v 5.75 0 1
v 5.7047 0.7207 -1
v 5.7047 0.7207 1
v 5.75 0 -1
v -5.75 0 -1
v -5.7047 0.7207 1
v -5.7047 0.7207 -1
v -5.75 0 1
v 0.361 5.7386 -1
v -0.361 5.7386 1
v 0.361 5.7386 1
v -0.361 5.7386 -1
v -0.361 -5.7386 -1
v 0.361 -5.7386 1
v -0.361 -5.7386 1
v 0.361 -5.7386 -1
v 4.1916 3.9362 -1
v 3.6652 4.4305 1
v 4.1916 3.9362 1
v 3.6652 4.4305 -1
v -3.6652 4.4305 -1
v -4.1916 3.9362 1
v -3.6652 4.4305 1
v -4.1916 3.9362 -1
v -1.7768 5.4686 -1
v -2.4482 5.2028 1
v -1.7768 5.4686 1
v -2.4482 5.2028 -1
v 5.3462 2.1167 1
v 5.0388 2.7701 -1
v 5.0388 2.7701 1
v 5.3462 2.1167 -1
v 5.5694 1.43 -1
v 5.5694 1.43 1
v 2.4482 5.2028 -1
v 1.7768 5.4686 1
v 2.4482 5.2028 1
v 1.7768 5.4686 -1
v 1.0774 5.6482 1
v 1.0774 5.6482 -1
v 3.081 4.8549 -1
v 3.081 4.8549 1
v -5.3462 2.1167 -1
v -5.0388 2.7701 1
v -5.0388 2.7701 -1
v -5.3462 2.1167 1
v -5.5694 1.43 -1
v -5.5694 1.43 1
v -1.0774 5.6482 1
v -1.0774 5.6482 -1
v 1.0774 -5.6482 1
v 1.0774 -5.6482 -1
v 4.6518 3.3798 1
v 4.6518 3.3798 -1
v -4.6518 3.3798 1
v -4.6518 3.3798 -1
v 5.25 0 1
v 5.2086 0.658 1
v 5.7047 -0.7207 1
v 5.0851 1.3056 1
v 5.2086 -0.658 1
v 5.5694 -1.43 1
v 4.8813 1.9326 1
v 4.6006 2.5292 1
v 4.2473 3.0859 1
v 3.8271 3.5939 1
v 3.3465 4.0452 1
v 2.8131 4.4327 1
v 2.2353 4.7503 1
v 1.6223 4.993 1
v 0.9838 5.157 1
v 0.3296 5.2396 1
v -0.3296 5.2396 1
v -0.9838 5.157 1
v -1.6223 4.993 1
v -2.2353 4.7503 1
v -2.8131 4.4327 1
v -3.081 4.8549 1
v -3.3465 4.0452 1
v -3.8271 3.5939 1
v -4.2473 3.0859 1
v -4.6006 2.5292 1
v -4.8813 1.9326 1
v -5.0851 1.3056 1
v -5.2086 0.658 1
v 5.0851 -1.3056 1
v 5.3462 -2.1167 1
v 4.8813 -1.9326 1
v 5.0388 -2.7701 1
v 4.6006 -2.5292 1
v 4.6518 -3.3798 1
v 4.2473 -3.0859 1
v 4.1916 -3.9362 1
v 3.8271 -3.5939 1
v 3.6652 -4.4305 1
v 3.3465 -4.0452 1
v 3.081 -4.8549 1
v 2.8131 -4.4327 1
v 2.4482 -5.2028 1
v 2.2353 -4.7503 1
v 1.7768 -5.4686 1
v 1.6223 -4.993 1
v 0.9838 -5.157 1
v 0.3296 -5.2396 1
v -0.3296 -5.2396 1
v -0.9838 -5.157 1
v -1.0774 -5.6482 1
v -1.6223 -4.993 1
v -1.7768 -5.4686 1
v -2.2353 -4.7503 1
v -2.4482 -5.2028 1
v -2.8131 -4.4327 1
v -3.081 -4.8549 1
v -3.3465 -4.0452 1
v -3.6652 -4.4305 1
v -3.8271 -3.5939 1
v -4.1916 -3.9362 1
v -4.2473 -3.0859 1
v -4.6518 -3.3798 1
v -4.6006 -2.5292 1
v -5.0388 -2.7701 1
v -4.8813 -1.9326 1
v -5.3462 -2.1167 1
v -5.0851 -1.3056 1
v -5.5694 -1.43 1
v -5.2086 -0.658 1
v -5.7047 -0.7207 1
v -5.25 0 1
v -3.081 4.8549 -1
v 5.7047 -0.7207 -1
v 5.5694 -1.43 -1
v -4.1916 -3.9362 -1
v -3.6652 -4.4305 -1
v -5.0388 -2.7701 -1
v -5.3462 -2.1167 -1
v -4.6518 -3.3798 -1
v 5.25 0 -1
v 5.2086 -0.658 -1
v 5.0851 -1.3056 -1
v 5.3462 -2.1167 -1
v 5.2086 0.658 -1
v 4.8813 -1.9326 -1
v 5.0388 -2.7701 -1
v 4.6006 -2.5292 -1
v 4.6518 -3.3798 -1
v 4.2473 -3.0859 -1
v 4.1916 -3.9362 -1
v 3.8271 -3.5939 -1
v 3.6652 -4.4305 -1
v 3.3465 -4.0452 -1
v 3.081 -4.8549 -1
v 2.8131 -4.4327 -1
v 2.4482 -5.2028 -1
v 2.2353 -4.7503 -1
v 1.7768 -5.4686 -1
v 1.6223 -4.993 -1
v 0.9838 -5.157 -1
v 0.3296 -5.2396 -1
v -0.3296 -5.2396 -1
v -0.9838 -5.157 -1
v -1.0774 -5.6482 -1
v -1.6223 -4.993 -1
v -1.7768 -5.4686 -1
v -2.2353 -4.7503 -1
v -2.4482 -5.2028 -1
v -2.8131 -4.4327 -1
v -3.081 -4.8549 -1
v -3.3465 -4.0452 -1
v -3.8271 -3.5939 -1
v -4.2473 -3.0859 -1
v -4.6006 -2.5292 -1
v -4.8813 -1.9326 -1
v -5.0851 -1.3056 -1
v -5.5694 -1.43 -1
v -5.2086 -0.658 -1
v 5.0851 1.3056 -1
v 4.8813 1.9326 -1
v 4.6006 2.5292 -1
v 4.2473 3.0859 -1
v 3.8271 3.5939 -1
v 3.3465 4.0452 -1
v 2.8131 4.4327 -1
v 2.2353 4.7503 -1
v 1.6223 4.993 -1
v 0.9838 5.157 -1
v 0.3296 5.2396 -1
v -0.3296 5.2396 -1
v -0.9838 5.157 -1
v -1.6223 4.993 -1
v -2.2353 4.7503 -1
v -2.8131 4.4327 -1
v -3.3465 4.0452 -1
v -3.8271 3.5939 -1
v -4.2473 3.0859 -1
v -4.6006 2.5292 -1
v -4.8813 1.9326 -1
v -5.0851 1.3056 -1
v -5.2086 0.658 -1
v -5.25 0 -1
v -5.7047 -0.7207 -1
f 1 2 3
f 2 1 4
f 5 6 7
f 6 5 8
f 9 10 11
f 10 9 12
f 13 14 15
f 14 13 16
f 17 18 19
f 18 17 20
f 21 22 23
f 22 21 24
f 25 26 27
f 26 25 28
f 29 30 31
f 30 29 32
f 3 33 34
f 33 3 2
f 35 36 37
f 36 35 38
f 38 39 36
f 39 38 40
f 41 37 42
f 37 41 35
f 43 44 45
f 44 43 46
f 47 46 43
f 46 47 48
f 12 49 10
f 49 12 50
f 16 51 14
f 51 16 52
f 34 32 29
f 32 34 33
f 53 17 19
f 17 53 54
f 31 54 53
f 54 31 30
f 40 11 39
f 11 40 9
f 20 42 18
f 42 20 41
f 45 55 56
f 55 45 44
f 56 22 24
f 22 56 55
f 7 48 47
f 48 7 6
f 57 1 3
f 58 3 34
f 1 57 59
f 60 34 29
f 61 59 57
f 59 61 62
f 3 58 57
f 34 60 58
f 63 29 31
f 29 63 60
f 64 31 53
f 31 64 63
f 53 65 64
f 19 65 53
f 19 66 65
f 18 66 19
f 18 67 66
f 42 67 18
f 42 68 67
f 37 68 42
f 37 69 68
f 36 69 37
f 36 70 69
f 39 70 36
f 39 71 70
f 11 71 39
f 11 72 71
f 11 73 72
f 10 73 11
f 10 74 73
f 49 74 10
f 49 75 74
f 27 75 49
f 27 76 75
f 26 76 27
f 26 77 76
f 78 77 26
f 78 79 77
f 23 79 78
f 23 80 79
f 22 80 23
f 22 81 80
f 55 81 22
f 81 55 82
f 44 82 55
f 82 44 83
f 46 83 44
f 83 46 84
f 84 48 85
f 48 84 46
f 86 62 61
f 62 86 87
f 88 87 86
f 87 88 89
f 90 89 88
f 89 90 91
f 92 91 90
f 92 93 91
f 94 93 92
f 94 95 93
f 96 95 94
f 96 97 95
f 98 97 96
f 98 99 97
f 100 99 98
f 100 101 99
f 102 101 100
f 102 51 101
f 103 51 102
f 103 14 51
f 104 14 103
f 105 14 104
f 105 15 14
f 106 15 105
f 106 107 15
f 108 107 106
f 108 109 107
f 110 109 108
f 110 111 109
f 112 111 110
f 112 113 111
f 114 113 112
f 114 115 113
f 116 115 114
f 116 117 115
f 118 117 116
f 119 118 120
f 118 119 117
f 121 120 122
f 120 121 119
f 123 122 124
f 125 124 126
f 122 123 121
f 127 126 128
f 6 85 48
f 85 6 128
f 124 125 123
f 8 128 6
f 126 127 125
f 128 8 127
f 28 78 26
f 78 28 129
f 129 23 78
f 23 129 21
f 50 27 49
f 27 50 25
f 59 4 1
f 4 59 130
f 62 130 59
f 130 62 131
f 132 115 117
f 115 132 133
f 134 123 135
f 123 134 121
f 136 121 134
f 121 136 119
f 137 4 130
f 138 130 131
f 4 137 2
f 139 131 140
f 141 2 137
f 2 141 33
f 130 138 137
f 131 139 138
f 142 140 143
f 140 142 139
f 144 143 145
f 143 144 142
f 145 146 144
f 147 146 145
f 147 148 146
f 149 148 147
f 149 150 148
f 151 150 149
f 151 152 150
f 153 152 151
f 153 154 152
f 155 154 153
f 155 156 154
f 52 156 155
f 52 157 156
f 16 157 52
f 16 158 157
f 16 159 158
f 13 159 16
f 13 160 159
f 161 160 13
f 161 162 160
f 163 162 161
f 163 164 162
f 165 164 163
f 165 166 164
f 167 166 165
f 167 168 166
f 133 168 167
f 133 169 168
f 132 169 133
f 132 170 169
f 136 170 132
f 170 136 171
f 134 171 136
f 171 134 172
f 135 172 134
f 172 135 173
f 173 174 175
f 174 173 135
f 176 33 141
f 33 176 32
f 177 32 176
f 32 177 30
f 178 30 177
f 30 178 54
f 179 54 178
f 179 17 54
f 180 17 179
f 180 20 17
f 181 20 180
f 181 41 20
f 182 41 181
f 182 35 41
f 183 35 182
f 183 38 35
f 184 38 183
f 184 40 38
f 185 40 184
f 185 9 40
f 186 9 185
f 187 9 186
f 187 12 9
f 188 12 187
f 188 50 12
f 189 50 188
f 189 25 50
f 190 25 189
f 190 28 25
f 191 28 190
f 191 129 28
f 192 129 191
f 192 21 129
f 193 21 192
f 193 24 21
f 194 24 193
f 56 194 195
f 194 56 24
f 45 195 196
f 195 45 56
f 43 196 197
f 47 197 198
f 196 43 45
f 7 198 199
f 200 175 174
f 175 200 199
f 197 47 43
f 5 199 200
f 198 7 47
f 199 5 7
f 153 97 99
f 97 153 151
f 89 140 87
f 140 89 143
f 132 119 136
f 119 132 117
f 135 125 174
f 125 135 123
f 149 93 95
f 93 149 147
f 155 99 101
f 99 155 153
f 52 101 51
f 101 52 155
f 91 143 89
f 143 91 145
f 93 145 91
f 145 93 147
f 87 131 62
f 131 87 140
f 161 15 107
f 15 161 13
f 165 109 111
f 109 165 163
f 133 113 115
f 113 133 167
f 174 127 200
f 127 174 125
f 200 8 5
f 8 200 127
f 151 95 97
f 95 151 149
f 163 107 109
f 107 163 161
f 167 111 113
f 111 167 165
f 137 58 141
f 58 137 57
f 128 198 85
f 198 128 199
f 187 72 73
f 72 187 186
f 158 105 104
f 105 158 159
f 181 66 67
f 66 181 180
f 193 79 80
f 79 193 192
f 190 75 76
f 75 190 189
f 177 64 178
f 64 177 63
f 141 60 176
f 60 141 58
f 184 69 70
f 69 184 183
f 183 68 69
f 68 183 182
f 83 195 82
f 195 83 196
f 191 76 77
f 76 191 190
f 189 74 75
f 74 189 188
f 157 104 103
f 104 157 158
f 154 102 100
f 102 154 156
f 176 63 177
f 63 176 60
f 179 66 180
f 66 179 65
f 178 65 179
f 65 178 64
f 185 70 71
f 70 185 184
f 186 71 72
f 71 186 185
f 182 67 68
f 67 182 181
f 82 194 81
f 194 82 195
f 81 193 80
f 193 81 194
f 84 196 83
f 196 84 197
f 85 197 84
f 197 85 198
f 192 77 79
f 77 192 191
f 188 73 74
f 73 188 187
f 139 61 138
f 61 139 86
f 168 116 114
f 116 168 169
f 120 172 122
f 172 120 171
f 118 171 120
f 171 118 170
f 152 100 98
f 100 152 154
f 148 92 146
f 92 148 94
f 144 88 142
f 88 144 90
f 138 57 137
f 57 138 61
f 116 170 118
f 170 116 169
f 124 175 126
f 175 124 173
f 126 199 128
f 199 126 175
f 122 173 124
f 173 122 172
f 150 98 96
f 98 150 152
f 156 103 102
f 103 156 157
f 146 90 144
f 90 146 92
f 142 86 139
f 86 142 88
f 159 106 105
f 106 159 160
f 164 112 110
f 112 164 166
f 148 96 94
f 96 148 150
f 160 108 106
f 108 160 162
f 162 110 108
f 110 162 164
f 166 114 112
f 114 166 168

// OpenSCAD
$fn = 50;


difference() {
	union() {
		translate(v = [0, 0, -1.0000000000]) {
			cylinder(h = 2, r = 5.7500000000);
		}
	}
	union() {
		translate(v = [0, 0, -100.0000000000]) {
			cylinder(h = 200, r = 5.2500000000);
		}
	}
}
